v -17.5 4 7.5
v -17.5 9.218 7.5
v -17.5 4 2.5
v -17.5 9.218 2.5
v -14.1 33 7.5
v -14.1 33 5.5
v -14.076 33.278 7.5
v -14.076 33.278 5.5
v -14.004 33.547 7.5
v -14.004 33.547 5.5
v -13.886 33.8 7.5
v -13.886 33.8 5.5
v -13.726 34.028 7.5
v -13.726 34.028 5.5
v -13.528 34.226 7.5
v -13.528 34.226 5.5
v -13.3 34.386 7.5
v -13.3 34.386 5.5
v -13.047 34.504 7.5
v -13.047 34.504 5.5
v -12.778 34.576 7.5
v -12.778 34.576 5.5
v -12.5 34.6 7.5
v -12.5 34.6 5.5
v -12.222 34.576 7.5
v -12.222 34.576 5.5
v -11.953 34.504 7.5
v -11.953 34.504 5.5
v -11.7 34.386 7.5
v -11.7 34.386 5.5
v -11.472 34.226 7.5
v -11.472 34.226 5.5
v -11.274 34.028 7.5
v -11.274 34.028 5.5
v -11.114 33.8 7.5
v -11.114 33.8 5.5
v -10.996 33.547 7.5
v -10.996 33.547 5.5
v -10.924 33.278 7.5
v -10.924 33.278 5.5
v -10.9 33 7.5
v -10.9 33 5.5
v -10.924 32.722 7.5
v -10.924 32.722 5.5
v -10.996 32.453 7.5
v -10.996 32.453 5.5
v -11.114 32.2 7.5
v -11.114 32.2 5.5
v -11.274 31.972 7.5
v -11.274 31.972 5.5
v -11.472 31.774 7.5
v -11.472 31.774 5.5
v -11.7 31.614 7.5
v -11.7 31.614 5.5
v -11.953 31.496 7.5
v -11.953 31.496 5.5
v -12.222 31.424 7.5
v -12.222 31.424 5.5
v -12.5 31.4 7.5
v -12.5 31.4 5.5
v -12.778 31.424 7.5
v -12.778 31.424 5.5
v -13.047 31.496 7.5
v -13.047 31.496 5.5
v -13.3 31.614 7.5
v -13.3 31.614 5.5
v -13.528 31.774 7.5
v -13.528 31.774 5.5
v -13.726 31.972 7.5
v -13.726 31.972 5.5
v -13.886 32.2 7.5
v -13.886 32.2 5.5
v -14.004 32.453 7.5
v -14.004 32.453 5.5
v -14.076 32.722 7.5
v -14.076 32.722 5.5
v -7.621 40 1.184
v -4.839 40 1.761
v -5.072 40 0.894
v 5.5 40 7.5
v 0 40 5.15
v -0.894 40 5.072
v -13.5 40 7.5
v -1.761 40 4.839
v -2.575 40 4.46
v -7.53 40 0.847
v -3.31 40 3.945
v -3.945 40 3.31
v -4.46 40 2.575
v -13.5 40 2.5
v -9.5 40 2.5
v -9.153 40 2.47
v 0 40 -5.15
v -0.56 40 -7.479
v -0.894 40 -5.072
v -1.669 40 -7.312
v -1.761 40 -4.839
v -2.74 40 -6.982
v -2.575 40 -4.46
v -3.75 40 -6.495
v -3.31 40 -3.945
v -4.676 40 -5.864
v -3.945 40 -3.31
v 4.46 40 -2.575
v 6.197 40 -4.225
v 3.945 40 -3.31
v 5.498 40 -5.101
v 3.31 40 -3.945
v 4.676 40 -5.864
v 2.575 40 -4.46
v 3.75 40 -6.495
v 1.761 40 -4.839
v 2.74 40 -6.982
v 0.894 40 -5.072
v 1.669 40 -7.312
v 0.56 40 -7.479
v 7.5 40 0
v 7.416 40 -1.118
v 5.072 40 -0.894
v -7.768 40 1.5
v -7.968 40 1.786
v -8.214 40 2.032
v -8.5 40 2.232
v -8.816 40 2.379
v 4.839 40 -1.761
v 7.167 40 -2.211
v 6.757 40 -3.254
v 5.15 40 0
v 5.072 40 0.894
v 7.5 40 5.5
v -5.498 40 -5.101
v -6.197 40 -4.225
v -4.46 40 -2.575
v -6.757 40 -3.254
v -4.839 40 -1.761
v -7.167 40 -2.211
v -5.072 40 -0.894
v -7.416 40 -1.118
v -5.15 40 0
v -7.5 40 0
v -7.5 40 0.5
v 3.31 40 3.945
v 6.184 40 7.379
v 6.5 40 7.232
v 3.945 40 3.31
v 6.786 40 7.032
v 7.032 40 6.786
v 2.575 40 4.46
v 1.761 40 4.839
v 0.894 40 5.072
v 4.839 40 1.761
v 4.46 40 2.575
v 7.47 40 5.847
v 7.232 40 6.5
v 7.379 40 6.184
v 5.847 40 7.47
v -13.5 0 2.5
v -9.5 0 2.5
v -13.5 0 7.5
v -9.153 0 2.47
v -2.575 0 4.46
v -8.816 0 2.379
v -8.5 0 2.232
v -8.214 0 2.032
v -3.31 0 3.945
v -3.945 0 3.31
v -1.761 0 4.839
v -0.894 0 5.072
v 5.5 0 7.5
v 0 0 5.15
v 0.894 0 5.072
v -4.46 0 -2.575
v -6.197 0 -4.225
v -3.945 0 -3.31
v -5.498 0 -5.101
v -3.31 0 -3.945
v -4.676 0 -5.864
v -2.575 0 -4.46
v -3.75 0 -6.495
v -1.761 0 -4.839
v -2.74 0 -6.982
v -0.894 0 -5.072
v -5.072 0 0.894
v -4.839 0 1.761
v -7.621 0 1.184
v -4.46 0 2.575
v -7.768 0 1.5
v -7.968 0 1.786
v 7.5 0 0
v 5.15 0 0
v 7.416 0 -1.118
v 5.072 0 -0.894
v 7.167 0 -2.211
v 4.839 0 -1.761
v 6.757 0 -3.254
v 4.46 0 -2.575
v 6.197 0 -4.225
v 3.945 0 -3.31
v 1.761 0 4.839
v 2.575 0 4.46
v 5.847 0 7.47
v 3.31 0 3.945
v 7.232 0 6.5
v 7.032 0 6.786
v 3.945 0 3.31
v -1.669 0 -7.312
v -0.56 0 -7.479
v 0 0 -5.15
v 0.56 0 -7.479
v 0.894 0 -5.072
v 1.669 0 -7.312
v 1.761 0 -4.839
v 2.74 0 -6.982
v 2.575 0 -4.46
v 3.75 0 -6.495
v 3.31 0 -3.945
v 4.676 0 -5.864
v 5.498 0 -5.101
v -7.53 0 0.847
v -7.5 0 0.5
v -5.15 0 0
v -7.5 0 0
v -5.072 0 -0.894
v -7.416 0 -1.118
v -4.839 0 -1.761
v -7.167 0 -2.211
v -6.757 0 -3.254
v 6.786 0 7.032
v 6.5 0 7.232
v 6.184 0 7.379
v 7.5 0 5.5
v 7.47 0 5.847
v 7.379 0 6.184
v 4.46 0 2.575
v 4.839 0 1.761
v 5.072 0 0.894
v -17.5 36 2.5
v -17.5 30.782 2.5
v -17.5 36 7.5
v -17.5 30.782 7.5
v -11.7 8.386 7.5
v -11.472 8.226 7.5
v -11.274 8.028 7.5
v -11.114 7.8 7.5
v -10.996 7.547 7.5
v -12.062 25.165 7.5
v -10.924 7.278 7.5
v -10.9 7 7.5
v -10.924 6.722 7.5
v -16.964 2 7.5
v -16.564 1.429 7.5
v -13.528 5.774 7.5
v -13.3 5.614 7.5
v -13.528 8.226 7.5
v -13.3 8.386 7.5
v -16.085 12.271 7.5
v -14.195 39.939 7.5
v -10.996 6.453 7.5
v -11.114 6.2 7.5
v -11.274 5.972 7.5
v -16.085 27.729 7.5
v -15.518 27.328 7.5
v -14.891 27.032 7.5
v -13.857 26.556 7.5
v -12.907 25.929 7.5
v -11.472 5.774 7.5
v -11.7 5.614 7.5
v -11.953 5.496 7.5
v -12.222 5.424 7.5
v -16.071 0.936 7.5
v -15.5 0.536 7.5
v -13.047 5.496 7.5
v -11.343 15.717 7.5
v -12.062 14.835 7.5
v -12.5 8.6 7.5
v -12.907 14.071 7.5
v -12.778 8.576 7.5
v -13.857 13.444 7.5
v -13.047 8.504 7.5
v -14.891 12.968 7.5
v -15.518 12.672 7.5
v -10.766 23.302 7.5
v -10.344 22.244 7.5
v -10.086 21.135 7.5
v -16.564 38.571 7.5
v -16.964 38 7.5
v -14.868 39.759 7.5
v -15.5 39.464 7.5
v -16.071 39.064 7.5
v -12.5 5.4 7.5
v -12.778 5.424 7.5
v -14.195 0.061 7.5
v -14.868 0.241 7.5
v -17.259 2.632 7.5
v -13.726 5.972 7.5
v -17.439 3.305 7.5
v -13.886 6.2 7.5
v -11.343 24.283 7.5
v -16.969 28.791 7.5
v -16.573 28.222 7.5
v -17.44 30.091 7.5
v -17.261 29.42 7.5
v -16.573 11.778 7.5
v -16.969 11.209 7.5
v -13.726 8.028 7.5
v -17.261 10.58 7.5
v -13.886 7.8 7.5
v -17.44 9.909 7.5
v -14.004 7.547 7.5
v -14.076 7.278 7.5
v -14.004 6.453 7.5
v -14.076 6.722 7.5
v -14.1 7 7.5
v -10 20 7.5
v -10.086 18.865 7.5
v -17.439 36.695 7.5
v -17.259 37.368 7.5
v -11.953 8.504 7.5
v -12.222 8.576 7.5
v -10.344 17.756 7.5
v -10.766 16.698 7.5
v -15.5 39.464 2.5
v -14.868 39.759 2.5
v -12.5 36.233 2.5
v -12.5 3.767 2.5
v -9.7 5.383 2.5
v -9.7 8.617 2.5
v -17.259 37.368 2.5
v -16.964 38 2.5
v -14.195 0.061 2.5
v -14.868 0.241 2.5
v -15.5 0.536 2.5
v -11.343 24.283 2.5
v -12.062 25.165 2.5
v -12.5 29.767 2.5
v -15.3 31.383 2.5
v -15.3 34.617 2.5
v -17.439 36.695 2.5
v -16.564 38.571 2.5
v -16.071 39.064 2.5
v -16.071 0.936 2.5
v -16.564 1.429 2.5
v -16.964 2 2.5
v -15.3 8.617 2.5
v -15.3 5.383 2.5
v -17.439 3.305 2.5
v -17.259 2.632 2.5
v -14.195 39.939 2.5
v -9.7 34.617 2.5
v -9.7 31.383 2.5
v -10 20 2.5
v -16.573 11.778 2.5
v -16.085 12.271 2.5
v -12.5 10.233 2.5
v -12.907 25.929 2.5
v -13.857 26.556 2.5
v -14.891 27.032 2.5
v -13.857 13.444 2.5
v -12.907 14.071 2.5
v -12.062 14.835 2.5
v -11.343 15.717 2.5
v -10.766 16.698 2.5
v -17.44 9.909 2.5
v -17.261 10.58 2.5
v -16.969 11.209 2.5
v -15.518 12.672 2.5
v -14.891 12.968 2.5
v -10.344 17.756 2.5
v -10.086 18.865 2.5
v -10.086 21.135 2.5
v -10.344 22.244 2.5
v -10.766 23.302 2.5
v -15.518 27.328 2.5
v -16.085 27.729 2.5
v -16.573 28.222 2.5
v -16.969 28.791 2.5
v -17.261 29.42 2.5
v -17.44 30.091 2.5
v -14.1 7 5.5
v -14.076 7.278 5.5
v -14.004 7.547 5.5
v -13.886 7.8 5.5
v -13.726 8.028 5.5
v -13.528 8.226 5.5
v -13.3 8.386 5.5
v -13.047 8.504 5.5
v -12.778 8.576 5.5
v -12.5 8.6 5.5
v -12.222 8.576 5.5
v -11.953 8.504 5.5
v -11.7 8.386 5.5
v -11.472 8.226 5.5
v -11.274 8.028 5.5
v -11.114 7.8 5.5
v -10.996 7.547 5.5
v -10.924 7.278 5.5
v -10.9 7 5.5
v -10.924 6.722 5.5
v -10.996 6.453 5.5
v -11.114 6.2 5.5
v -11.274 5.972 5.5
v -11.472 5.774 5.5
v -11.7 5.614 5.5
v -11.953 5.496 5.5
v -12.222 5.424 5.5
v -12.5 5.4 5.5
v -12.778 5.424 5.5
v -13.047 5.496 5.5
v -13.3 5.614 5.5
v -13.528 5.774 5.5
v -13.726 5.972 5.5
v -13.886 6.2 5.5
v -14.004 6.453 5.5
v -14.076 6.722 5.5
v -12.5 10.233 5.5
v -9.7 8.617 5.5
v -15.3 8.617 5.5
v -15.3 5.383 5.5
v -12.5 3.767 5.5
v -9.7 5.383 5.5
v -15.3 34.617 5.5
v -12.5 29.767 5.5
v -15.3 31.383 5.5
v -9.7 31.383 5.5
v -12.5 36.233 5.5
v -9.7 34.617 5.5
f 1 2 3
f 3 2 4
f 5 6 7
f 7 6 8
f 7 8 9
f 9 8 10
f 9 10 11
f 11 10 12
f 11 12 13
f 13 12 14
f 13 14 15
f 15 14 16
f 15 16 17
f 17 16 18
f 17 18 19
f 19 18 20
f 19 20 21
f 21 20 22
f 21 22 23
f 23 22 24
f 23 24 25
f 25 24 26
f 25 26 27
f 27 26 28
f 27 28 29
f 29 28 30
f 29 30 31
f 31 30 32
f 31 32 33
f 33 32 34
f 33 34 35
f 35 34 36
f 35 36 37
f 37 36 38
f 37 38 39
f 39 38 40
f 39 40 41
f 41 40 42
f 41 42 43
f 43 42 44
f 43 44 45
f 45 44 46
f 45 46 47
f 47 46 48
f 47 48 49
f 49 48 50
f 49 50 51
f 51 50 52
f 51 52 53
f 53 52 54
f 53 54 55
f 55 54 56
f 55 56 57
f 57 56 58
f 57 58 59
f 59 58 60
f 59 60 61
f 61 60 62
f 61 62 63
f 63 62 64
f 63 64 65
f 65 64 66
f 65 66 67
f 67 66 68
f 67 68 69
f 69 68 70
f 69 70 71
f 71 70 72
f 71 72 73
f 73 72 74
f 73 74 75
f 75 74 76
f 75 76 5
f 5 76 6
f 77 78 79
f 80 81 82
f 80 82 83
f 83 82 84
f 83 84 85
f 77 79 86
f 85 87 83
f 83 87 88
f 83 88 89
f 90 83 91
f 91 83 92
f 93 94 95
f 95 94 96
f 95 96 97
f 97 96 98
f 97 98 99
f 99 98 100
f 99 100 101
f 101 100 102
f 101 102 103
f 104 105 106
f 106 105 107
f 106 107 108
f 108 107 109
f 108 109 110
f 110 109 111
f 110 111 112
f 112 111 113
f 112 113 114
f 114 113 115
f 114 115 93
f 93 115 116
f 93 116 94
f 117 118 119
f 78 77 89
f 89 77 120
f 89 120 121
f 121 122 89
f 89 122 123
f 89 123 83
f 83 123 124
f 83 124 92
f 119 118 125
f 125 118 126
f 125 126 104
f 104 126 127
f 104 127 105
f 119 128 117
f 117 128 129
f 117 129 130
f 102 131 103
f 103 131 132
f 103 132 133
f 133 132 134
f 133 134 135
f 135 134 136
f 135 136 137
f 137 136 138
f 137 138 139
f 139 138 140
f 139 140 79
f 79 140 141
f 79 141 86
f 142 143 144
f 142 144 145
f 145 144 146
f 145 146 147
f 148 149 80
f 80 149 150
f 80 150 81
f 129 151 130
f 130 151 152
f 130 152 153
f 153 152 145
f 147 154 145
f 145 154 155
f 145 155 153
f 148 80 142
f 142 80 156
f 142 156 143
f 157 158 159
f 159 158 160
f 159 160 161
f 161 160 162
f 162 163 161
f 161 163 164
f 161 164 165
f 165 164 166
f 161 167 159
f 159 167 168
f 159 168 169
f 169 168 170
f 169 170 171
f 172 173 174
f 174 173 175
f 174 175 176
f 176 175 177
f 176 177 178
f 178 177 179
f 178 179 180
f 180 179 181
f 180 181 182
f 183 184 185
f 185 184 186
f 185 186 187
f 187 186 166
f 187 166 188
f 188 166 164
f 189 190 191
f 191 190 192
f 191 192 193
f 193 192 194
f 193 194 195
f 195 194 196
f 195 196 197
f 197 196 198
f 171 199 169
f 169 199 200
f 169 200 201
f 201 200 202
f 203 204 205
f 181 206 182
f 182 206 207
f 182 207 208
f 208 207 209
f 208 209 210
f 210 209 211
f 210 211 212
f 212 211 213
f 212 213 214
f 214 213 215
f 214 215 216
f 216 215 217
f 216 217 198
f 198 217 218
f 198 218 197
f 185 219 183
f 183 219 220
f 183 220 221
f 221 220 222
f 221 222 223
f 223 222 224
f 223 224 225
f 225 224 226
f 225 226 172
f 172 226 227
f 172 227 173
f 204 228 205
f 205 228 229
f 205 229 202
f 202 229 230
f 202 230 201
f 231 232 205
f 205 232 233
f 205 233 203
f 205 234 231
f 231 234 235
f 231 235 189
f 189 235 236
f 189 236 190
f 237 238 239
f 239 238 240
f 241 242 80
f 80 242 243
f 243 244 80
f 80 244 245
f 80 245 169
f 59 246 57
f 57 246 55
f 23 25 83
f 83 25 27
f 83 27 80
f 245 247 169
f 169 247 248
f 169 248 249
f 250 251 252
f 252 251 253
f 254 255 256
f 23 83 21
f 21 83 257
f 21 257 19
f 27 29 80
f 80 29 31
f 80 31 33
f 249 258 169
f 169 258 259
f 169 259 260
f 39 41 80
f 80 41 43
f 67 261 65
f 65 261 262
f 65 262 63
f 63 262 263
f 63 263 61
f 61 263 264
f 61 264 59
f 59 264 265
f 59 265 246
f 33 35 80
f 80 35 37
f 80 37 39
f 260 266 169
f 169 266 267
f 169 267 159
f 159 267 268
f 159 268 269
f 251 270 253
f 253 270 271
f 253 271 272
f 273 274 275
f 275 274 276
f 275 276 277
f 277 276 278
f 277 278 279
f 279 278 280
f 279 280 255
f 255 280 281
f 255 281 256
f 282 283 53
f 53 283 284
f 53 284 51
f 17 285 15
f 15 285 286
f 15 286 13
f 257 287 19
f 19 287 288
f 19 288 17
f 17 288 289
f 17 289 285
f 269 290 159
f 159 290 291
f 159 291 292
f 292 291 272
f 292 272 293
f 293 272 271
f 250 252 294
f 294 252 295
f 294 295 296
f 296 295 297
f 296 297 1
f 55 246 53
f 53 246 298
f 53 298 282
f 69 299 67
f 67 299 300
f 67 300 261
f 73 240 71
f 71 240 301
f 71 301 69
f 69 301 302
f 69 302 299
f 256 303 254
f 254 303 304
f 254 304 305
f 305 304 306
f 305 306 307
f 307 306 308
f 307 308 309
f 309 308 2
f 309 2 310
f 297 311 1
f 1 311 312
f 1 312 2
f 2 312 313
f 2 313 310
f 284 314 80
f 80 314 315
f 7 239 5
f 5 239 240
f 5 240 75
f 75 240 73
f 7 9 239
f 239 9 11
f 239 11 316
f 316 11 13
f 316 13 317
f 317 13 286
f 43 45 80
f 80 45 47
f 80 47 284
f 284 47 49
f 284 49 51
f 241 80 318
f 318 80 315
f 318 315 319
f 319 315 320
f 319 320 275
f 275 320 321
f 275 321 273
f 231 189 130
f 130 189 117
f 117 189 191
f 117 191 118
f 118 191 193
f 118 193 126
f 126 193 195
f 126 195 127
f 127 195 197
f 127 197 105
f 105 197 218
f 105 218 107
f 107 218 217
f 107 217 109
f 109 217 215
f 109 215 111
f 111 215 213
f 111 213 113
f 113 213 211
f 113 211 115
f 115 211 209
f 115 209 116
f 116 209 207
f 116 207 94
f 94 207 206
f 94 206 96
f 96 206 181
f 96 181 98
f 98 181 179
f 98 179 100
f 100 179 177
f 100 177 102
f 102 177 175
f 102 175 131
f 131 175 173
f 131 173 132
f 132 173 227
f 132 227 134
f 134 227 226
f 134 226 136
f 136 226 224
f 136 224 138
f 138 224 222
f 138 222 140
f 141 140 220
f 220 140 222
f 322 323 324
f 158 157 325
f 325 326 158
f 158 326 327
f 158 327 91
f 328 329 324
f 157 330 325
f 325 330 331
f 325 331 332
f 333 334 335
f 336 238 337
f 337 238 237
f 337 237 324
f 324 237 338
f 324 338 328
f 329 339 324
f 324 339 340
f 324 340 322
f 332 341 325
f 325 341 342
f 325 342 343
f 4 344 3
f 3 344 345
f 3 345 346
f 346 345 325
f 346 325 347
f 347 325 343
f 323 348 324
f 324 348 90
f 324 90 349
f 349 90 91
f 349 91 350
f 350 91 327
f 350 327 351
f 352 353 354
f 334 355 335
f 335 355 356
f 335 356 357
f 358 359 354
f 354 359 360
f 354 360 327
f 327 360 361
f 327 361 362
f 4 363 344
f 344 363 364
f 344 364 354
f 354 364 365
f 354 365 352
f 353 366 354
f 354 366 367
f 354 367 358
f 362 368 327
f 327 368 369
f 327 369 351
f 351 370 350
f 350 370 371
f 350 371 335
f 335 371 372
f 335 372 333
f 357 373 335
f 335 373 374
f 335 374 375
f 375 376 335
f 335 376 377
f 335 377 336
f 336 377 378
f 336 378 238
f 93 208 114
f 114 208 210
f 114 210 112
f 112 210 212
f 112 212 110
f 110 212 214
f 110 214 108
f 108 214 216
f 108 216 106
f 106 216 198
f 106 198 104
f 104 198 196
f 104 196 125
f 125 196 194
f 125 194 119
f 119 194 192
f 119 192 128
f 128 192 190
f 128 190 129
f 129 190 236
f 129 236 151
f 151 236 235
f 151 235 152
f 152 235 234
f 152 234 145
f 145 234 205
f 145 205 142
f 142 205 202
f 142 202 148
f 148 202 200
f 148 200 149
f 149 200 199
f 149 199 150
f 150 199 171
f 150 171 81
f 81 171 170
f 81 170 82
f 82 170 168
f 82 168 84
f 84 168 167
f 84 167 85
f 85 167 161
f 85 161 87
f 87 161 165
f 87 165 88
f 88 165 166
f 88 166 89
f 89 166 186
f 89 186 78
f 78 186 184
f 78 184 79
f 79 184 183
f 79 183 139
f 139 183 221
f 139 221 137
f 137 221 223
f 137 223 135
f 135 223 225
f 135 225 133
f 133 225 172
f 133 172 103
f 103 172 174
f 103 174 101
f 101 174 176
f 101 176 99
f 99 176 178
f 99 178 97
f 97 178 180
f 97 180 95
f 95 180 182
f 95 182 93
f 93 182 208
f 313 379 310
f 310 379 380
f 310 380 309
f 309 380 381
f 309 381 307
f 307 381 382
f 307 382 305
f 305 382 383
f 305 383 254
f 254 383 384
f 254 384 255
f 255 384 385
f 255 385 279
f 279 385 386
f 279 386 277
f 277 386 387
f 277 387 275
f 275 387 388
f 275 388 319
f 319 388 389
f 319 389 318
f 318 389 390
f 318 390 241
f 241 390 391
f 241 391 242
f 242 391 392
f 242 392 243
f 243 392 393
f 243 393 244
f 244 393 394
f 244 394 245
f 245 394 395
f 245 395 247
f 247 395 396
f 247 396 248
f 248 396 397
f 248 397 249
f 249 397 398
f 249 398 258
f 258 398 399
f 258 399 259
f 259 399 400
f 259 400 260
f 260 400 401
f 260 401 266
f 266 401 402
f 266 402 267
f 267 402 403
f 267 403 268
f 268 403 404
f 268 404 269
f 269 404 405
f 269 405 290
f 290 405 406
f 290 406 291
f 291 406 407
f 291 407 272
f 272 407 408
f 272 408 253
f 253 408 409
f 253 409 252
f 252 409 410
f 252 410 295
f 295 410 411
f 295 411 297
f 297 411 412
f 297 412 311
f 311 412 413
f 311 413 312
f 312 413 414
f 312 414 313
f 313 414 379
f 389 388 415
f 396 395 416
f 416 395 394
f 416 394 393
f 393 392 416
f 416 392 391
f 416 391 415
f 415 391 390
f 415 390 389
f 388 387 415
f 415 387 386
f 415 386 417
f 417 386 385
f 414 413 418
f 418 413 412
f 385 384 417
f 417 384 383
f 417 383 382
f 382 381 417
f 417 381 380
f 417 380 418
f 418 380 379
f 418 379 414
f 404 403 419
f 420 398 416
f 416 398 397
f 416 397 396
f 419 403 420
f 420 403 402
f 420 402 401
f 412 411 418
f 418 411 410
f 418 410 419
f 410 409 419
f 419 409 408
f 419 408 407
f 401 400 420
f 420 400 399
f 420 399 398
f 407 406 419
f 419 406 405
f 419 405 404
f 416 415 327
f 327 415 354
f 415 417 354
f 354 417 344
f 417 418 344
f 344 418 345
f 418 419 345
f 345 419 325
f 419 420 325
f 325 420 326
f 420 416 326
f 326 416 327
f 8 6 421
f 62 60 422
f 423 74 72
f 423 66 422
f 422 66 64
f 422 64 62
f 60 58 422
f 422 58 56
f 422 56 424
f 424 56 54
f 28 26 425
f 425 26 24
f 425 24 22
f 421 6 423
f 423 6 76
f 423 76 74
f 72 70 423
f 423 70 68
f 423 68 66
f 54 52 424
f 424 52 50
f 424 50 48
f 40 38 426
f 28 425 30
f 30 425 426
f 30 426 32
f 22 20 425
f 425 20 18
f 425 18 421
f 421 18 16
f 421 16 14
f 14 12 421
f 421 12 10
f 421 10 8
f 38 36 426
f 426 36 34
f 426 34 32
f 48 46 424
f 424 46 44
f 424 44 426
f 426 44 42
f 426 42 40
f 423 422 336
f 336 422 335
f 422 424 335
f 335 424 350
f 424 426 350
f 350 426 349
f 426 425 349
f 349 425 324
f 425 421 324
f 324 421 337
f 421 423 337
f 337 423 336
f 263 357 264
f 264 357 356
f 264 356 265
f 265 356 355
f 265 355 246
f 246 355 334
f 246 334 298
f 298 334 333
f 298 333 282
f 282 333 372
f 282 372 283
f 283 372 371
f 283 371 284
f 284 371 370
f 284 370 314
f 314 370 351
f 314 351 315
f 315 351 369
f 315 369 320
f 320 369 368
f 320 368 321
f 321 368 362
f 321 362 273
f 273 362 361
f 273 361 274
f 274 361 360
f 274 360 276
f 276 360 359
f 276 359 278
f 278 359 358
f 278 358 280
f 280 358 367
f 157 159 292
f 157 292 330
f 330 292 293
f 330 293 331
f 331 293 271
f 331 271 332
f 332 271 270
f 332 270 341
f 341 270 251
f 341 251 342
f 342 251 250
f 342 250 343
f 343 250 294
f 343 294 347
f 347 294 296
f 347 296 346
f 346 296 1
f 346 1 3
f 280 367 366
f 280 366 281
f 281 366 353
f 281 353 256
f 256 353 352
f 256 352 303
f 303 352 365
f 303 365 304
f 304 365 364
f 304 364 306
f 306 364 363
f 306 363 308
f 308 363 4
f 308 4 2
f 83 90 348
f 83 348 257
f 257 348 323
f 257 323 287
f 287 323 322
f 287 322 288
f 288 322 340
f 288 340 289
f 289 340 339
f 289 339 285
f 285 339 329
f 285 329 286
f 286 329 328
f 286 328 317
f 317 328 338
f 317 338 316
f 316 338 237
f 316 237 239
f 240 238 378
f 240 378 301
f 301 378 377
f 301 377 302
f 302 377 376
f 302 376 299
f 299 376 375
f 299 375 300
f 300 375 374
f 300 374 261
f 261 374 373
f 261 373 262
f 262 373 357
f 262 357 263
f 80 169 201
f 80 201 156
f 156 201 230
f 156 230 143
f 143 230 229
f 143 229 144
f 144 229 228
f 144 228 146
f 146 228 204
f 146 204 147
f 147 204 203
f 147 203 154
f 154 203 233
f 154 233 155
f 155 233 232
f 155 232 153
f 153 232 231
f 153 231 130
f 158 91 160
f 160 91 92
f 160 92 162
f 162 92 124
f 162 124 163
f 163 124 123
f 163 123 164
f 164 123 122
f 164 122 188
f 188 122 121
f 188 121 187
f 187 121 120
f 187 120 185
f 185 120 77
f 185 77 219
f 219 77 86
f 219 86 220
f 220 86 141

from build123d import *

# Parameters (mm, degrees)
CROQUIS1_R              = 5.075
SALIENTE_EXTRUIR1_DEPTH = 40
CROQUIS2_R              = 1.6
CORTAR_EXTRUIR1_DEPTH   = 6
CORTAR_EXTRUIR2_DEPTH   = 3
CORTAR_EXTRUIR3_DEPTH   = 6
REDONDEO1_R             = 4
REDONDEO2_R             = 2


with BuildPart() as part:
    # Croquis1 → Saliente-Extruir1 (new body)
    with BuildSketch(Plane(origin=(0, 0, 0), x_dir=(1, 0, 0), z_dir=(0, 1, 0))):
        with BuildLine():
            Line((-17.5, -7.5), (7.5, -7.5))
            Line((7.5, -7.5), (7.5, 0))
            ThreePointArc((7.5, 0), (0, 7.5), (-7.5, 0))
            Line((-7.5, 0), (-7.5, -2.5))
            Line((-7.5, -2.5), (-17.5, -2.5))
            Line((-17.5, -2.5), (-17.5, -7.5))
        make_face()
        Circle(CROQUIS1_R, mode=Mode.SUBTRACT)
    extrude(amount=SALIENTE_EXTRUIR1_DEPTH)

    # Croquis2 → Cortar-Extruir1 (cut, through all)
    with BuildSketch(Plane(origin=(0, 0, 2.5), x_dir=(-1, 0, 0), z_dir=(0, 0, -1))):
        with Locations((12.5, 7)):
            Circle(CROQUIS2_R)
        with Locations((12.5, 33)):
            Circle(CROQUIS2_R)
    extrude(amount=-CORTAR_EXTRUIR1_DEPTH, mode=Mode.SUBTRACT)

    # Croquis3 → Cortar-Extruir2 (cut)
    with BuildSketch(Plane(origin=(0, 0, 2.5), x_dir=(-1, 0, 0), z_dir=(0, 0, -1))):
        Polygon((15.3, 31.383419246), (15.3, 34.616580754), (12.5, 36.233161507), (9.7, 34.616580754), (9.7, 31.383419246), (12.5, 29.766838493), align=None)
        Polygon((12.5, 10.233161507), (15.3, 8.616580754), (15.3, 5.383419246), (12.5, 3.766838493), (9.7, 5.383419246), (9.7, 8.616580754), align=None)
    extrude(amount=-CORTAR_EXTRUIR2_DEPTH, mode=Mode.SUBTRACT)

    # Croquis4 → Cortar-Extruir3 (cut, through all)
    with BuildSketch(Plane(origin=(0, 0, 2.5), x_dir=(-1, 0, 0), z_dir=(0, 0, -1))):
        with BuildLine():
            Line((17.5, 27.5), (17.5, 12.5))
            ThreePointArc((17.5, 12.5), (10, 20), (17.5, 27.5))
        make_face()
    extrude(amount=-CORTAR_EXTRUIR3_DEPTH, mode=Mode.SUBTRACT)

    # Redondeo1
    redondeo1_edges = [part.edges().sort_by_distance(p)[0] for p in [
        (-17.5, 40, 5),
        (-17.5, 12.5, 5),
        (-17.5, 27.5, 5),
        (-17.5, 0, 5),
    ]]
    fillet(redondeo1_edges, radius=REDONDEO1_R)

    # Redondeo2
    redondeo2_edges = [part.edges().sort_by_distance(p)[0] for p in [
        (-7.5, 20, 2.5),
        (7.5, 20, 7.5),
    ]]
    fillet(redondeo2_edges, radius=REDONDEO2_R)


solid = part.part
